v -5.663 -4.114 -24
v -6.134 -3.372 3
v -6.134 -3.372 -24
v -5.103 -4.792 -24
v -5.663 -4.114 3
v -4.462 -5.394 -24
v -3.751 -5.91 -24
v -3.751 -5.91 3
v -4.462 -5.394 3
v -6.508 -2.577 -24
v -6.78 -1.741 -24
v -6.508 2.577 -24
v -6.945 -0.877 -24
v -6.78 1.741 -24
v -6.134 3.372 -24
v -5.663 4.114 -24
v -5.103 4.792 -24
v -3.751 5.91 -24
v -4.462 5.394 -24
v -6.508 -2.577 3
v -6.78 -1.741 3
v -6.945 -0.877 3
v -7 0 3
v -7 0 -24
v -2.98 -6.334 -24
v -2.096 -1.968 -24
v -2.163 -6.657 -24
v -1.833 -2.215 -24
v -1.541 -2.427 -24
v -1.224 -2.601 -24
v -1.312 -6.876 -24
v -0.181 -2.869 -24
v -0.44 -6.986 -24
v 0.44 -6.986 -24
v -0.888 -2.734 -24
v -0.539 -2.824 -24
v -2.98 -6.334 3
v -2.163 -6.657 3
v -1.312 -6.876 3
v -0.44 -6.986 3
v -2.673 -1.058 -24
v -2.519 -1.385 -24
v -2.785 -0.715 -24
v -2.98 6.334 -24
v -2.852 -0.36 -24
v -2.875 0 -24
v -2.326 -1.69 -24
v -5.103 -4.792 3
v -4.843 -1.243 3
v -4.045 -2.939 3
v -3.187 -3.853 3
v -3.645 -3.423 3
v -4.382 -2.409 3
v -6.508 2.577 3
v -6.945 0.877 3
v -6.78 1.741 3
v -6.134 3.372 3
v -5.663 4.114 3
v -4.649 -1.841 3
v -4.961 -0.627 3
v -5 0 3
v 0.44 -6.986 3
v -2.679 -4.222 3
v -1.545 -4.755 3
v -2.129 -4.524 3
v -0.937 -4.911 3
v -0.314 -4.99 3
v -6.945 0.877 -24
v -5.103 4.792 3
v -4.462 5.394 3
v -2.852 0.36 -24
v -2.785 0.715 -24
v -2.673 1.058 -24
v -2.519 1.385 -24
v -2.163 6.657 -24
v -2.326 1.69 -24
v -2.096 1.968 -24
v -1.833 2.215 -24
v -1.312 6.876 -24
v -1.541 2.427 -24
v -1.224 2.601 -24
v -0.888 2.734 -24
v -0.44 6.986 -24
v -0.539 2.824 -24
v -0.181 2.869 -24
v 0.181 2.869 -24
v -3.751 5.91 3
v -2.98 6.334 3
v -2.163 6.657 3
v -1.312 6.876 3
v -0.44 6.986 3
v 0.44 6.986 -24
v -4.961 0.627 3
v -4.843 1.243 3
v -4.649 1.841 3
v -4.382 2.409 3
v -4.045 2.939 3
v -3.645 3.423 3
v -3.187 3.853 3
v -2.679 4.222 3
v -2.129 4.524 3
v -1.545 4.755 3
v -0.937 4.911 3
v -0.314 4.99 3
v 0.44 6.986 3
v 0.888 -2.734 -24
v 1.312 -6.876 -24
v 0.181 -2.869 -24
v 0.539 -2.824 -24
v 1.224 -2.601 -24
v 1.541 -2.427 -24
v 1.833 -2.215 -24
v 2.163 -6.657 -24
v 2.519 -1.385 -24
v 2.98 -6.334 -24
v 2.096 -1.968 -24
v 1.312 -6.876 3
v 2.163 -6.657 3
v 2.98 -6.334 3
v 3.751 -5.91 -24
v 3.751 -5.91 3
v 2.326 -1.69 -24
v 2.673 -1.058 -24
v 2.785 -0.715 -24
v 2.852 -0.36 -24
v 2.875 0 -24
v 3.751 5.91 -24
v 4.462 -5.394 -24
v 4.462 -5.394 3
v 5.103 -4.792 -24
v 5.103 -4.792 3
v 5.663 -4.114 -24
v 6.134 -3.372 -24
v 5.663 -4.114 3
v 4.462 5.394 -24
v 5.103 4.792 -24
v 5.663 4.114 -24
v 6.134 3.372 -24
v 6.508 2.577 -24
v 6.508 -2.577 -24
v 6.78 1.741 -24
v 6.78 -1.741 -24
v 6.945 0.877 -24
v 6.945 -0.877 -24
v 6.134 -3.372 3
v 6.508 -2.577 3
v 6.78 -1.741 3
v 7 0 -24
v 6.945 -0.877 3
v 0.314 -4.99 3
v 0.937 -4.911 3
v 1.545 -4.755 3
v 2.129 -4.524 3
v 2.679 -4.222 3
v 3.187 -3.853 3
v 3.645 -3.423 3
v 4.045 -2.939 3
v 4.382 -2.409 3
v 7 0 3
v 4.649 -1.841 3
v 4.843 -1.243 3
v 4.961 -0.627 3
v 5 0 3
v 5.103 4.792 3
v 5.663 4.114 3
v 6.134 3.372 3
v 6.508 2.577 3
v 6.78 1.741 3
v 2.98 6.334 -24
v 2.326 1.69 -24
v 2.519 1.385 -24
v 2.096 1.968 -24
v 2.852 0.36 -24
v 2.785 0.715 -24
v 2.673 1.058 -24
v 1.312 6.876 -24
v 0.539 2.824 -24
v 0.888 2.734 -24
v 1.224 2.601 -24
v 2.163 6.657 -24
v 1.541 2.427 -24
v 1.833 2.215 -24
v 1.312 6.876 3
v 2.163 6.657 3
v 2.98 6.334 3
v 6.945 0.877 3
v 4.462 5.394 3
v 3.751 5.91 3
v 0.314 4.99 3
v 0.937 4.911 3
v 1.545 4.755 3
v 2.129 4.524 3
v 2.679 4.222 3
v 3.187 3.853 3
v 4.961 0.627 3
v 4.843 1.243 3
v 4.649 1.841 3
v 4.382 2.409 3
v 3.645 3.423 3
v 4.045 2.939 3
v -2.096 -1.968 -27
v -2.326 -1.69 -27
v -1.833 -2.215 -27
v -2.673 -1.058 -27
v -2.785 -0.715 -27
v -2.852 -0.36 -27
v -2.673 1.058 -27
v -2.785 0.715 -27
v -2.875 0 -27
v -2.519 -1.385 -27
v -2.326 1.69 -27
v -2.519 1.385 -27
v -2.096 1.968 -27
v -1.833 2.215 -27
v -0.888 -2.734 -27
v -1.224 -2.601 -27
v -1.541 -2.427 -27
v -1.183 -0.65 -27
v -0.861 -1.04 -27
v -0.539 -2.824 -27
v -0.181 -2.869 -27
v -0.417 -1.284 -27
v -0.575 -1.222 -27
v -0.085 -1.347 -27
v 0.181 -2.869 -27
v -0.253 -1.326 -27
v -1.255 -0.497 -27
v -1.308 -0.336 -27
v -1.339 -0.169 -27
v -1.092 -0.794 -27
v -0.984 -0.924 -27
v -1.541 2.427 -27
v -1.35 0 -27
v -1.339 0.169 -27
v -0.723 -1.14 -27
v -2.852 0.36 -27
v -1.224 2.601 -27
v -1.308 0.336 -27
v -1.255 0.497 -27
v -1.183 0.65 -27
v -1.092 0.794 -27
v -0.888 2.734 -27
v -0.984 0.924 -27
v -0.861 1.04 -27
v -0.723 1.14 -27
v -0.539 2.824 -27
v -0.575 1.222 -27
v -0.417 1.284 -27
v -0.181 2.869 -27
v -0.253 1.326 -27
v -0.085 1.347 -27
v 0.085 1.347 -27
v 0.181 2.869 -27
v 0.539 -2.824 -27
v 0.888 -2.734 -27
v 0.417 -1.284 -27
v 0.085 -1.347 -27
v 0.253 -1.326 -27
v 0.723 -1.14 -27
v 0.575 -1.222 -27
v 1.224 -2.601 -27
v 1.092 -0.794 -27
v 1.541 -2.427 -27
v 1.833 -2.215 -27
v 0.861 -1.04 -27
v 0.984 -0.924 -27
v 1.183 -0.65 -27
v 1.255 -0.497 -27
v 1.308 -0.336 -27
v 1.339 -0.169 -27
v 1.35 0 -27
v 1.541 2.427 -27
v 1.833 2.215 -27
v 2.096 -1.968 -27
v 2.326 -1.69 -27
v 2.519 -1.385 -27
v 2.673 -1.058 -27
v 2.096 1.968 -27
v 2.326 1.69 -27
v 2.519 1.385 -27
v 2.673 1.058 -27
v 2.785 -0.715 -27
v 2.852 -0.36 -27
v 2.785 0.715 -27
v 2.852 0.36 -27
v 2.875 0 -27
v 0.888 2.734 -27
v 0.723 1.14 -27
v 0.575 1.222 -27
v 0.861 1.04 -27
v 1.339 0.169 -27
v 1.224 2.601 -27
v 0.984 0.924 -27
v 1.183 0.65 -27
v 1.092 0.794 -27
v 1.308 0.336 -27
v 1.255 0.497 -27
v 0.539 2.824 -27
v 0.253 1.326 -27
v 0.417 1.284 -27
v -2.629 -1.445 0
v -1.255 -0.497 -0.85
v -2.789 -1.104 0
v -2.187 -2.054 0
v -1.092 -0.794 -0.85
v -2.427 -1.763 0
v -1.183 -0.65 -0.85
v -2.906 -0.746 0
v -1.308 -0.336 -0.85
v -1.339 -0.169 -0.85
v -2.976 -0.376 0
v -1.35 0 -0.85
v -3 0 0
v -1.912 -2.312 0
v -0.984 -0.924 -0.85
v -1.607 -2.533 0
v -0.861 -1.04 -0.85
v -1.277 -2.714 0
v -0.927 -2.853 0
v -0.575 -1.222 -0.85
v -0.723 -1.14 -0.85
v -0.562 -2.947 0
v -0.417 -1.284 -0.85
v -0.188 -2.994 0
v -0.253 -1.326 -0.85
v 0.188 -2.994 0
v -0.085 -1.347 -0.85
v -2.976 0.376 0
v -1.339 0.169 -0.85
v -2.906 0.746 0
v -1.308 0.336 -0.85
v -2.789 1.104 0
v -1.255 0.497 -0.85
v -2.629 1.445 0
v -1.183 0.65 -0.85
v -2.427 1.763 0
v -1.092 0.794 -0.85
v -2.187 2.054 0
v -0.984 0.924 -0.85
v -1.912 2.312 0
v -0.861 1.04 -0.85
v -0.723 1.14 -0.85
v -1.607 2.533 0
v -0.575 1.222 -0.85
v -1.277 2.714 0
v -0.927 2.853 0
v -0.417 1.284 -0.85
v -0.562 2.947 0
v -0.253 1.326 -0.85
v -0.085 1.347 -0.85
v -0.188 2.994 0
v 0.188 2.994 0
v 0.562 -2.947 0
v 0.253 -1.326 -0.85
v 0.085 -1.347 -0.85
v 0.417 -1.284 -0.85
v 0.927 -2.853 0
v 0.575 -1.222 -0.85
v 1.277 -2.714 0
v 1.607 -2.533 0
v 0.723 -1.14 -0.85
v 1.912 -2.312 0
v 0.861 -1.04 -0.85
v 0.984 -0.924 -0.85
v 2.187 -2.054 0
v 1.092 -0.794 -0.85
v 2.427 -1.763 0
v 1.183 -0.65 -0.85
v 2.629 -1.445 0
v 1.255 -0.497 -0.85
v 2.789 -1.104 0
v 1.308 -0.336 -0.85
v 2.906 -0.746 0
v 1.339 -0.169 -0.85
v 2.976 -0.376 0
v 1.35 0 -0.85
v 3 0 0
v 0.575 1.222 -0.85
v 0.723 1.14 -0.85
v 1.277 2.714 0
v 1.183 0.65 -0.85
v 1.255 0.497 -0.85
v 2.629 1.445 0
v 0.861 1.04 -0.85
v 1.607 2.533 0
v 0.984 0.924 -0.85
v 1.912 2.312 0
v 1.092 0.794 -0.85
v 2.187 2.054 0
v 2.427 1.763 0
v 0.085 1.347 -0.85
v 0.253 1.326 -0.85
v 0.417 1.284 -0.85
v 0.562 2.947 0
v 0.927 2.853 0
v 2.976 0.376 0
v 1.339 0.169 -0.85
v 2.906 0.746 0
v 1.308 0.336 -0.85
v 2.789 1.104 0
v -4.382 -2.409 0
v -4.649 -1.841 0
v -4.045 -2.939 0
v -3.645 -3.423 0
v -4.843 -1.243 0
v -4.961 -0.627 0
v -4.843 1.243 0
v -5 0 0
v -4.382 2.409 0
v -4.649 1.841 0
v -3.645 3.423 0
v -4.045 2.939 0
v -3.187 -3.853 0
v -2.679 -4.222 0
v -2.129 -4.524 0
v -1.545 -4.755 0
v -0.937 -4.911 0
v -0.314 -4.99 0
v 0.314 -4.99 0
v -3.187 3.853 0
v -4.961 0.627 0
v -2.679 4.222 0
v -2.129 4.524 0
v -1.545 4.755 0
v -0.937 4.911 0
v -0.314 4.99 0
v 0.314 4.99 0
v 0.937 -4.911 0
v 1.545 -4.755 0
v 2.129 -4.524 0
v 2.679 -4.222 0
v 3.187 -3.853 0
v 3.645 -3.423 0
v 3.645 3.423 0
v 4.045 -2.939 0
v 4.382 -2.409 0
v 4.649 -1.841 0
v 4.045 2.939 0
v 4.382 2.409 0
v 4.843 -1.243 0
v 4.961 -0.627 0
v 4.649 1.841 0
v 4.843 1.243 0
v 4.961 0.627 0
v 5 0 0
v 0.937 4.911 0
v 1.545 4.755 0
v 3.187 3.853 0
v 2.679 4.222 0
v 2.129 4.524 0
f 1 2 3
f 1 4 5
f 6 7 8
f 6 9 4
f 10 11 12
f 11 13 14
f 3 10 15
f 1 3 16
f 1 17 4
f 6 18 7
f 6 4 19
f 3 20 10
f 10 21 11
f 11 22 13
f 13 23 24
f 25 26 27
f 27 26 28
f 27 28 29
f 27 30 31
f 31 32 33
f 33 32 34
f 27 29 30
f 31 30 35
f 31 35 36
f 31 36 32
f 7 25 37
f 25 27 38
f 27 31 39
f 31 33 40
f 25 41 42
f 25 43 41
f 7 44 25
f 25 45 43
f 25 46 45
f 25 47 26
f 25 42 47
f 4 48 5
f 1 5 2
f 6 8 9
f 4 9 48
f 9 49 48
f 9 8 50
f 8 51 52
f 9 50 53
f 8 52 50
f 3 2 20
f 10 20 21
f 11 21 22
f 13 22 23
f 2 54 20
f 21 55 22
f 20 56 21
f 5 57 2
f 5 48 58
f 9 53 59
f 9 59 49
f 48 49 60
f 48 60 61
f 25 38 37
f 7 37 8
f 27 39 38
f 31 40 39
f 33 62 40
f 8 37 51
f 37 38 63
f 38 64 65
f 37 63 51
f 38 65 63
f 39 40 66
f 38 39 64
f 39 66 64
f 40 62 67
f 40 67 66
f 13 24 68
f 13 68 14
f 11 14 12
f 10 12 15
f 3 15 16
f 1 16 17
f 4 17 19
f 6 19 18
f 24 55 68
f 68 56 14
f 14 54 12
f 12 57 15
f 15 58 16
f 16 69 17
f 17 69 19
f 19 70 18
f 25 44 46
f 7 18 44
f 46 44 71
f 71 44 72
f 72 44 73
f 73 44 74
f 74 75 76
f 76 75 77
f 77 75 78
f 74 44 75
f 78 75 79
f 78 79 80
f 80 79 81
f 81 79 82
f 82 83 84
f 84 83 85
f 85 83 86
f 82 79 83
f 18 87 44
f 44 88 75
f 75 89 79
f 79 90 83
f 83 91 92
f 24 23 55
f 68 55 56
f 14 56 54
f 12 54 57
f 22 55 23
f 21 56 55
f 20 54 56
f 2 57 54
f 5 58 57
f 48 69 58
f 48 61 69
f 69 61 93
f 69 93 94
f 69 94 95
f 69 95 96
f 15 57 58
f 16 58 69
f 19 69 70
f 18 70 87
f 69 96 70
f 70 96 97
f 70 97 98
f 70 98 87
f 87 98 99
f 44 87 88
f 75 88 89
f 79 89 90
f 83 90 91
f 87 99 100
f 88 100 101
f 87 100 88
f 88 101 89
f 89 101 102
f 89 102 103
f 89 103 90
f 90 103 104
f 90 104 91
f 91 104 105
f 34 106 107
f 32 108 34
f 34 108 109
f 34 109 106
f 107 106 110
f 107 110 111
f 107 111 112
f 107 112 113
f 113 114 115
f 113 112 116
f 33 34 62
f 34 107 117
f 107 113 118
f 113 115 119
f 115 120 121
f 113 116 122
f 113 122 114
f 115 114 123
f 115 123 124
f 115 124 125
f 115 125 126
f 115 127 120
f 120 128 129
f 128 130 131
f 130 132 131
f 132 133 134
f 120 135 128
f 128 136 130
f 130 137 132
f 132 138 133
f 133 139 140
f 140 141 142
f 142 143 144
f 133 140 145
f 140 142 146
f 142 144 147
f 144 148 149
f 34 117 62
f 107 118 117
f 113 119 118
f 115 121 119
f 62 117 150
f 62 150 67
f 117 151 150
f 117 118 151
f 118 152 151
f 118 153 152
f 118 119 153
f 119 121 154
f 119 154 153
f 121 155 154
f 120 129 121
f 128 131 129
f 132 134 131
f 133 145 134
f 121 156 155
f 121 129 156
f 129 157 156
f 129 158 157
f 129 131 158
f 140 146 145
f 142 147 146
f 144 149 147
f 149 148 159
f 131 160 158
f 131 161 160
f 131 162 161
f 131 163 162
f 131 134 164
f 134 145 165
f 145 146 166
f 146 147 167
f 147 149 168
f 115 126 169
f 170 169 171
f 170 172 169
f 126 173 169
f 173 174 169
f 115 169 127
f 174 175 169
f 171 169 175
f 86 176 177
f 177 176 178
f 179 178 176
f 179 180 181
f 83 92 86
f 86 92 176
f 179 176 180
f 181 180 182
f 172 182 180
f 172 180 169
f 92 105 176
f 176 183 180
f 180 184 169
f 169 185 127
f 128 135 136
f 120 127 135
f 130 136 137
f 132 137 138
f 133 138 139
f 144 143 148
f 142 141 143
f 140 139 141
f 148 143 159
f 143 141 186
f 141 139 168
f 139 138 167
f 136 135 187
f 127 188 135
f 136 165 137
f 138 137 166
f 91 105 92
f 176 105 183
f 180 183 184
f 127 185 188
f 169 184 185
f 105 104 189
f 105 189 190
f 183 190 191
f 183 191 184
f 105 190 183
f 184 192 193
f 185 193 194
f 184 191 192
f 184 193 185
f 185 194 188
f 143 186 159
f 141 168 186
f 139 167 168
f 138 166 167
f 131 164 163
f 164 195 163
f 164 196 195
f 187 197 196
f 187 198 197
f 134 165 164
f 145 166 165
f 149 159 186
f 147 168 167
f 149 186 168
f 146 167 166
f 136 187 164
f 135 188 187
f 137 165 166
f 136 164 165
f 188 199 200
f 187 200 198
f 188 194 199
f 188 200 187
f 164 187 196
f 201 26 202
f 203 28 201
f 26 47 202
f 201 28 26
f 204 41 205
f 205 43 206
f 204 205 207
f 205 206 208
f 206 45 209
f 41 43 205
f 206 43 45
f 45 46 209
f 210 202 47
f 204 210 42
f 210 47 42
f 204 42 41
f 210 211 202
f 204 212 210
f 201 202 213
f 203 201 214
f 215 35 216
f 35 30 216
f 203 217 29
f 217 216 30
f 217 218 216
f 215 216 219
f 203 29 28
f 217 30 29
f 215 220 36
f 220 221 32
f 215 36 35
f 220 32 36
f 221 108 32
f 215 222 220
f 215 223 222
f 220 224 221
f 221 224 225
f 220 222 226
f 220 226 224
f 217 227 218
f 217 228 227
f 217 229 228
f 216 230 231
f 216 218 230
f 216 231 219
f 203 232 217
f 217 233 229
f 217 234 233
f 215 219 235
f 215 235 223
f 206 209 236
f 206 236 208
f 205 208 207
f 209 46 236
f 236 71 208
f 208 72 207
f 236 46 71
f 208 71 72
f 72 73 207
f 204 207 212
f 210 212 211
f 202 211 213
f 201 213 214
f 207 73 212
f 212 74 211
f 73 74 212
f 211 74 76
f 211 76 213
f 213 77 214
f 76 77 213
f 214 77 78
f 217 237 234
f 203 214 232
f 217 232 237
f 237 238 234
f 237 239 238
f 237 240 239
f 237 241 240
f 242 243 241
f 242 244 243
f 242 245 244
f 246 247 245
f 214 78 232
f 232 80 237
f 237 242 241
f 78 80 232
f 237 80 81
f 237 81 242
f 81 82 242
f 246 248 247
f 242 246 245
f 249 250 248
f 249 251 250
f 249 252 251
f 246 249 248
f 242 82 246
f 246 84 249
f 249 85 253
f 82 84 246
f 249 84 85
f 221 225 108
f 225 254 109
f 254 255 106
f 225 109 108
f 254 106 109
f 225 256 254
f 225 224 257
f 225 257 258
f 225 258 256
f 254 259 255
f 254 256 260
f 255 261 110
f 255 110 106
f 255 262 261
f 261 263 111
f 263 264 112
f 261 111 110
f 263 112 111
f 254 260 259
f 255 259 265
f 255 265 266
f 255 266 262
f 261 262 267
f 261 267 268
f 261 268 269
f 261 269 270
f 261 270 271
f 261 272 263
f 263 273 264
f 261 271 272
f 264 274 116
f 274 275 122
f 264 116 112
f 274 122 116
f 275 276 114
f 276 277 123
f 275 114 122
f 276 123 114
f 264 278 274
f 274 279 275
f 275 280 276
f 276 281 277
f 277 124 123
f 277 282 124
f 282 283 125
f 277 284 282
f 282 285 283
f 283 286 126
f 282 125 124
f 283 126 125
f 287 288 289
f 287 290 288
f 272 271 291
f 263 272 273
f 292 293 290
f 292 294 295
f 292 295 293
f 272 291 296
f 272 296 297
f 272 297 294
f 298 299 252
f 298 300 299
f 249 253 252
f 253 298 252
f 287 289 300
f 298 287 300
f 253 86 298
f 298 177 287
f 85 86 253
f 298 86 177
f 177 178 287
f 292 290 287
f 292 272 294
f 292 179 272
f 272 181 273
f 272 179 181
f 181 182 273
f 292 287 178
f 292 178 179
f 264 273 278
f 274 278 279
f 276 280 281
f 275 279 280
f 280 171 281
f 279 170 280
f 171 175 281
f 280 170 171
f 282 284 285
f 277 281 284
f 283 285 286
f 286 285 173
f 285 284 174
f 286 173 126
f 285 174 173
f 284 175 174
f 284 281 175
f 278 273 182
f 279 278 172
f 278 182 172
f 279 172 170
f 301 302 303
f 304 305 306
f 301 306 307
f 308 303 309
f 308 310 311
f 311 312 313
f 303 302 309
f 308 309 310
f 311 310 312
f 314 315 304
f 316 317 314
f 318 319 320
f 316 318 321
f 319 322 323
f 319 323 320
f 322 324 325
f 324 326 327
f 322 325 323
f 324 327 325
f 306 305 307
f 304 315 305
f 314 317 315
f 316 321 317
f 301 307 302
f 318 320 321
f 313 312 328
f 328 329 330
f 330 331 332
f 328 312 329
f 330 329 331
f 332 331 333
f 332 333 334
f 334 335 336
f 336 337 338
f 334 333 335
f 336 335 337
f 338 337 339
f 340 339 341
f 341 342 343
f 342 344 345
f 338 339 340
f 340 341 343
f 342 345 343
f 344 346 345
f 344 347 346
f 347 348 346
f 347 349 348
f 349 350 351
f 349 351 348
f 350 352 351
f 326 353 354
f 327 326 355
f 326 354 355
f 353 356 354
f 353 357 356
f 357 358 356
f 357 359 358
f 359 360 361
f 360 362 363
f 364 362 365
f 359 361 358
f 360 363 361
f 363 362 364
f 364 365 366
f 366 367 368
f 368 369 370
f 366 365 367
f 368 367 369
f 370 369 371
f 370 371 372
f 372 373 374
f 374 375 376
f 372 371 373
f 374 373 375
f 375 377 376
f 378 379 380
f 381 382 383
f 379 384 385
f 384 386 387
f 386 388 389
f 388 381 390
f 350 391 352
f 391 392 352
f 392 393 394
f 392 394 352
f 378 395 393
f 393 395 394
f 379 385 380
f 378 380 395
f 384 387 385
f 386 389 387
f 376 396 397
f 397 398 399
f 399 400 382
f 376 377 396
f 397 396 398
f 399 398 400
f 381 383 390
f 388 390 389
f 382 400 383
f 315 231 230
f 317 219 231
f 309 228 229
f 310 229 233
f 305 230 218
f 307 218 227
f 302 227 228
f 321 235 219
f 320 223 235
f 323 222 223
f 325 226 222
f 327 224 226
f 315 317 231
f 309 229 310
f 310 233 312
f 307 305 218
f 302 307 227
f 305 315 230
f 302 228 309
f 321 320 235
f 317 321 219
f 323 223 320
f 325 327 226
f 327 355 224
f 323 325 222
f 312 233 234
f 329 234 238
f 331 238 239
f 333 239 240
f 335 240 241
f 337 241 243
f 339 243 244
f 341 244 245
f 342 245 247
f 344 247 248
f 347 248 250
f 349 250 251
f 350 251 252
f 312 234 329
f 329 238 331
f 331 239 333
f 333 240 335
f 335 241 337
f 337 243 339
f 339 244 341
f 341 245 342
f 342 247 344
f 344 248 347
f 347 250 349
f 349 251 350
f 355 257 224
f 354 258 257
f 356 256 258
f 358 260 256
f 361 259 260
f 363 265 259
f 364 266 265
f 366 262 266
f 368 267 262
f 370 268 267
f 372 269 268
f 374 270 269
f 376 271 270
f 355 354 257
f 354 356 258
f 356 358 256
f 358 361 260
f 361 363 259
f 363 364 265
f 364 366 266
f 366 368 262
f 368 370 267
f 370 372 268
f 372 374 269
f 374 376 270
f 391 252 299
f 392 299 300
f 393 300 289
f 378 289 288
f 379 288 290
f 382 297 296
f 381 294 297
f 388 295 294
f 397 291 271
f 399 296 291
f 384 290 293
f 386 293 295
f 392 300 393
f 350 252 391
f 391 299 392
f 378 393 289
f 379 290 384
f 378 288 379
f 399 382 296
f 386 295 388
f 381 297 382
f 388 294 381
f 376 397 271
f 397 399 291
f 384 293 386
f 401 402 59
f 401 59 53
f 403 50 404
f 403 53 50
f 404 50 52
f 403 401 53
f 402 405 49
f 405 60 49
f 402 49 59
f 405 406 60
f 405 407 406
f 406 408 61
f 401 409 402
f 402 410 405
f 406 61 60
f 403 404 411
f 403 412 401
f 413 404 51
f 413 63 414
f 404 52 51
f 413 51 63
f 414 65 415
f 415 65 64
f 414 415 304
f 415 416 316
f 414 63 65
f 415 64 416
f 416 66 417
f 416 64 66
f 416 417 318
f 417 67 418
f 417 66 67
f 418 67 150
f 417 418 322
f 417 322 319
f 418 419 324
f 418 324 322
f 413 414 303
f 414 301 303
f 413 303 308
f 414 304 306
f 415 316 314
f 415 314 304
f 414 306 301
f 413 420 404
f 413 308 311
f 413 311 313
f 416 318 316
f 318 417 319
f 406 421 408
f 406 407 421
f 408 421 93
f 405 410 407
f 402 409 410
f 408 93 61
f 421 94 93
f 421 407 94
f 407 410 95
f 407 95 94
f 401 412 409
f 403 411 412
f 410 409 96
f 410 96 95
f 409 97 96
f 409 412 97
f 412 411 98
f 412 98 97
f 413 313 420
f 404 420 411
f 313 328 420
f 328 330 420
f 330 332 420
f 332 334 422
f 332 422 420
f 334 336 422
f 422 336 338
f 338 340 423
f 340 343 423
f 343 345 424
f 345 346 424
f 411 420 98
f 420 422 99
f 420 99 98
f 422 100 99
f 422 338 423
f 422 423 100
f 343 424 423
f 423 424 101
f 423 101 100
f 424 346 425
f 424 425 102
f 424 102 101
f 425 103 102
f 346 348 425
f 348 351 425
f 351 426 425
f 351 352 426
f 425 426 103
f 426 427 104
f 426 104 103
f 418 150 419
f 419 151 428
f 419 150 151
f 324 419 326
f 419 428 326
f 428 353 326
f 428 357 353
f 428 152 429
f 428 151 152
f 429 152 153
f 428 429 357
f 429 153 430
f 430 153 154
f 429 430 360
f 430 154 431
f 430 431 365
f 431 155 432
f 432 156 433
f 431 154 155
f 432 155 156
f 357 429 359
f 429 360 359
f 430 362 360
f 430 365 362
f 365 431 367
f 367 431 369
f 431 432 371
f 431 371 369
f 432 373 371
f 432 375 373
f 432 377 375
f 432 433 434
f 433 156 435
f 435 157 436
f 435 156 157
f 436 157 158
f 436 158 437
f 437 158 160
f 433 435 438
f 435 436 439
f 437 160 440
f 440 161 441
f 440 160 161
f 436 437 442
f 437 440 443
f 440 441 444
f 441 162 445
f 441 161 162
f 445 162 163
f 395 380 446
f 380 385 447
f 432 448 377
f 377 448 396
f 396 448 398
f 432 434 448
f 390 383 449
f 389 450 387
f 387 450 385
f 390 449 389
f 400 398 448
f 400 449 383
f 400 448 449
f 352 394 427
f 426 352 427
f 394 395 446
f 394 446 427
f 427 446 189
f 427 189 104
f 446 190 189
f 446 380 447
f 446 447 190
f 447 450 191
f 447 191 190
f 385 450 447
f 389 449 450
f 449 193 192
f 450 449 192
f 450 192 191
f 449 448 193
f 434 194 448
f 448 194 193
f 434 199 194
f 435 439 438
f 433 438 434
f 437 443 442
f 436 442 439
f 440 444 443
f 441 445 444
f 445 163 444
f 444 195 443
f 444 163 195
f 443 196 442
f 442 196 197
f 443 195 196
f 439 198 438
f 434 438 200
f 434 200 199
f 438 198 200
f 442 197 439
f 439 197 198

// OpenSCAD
$fn = 50;


difference() {
	union() {
		translate(v = [0, 0, -24.0000000000]) {
			cylinder(h = 27, r = 7.0000000000);
		}
		#translate(v = [0, 0, -27.0000000000]) {
			cylinder(h = 27, r = 2.8750000000);
		}
	}
	union() {
		translate(v = [0, 0, 0]) {
			rotate(a = [0, 0, 0]) {
				difference() {
					union() {
						translate(v = [0, 0, -27.0000000000]) {
							cylinder(h = 27, r = 1.0000000000);
						}
						translate(v = [0, 0, -0.8500000000]) {
							cylinder(h = 0.8500000000, r1 = 1.3500000000, r2 = 3.0000000000);
						}
						translate(v = [0, 0, -27.0000000000]) {
							cylinder(h = 27, r = 1.3500000000);
						}
						translate(v = [0, 0, -27.0000000000]) {
							cylinder(h = 27, r = 1.0000000000);
						}
					}
					union();
				}
			}
		}
		#cylinder(h = 3, r = 5.0000000000);
	}
}
